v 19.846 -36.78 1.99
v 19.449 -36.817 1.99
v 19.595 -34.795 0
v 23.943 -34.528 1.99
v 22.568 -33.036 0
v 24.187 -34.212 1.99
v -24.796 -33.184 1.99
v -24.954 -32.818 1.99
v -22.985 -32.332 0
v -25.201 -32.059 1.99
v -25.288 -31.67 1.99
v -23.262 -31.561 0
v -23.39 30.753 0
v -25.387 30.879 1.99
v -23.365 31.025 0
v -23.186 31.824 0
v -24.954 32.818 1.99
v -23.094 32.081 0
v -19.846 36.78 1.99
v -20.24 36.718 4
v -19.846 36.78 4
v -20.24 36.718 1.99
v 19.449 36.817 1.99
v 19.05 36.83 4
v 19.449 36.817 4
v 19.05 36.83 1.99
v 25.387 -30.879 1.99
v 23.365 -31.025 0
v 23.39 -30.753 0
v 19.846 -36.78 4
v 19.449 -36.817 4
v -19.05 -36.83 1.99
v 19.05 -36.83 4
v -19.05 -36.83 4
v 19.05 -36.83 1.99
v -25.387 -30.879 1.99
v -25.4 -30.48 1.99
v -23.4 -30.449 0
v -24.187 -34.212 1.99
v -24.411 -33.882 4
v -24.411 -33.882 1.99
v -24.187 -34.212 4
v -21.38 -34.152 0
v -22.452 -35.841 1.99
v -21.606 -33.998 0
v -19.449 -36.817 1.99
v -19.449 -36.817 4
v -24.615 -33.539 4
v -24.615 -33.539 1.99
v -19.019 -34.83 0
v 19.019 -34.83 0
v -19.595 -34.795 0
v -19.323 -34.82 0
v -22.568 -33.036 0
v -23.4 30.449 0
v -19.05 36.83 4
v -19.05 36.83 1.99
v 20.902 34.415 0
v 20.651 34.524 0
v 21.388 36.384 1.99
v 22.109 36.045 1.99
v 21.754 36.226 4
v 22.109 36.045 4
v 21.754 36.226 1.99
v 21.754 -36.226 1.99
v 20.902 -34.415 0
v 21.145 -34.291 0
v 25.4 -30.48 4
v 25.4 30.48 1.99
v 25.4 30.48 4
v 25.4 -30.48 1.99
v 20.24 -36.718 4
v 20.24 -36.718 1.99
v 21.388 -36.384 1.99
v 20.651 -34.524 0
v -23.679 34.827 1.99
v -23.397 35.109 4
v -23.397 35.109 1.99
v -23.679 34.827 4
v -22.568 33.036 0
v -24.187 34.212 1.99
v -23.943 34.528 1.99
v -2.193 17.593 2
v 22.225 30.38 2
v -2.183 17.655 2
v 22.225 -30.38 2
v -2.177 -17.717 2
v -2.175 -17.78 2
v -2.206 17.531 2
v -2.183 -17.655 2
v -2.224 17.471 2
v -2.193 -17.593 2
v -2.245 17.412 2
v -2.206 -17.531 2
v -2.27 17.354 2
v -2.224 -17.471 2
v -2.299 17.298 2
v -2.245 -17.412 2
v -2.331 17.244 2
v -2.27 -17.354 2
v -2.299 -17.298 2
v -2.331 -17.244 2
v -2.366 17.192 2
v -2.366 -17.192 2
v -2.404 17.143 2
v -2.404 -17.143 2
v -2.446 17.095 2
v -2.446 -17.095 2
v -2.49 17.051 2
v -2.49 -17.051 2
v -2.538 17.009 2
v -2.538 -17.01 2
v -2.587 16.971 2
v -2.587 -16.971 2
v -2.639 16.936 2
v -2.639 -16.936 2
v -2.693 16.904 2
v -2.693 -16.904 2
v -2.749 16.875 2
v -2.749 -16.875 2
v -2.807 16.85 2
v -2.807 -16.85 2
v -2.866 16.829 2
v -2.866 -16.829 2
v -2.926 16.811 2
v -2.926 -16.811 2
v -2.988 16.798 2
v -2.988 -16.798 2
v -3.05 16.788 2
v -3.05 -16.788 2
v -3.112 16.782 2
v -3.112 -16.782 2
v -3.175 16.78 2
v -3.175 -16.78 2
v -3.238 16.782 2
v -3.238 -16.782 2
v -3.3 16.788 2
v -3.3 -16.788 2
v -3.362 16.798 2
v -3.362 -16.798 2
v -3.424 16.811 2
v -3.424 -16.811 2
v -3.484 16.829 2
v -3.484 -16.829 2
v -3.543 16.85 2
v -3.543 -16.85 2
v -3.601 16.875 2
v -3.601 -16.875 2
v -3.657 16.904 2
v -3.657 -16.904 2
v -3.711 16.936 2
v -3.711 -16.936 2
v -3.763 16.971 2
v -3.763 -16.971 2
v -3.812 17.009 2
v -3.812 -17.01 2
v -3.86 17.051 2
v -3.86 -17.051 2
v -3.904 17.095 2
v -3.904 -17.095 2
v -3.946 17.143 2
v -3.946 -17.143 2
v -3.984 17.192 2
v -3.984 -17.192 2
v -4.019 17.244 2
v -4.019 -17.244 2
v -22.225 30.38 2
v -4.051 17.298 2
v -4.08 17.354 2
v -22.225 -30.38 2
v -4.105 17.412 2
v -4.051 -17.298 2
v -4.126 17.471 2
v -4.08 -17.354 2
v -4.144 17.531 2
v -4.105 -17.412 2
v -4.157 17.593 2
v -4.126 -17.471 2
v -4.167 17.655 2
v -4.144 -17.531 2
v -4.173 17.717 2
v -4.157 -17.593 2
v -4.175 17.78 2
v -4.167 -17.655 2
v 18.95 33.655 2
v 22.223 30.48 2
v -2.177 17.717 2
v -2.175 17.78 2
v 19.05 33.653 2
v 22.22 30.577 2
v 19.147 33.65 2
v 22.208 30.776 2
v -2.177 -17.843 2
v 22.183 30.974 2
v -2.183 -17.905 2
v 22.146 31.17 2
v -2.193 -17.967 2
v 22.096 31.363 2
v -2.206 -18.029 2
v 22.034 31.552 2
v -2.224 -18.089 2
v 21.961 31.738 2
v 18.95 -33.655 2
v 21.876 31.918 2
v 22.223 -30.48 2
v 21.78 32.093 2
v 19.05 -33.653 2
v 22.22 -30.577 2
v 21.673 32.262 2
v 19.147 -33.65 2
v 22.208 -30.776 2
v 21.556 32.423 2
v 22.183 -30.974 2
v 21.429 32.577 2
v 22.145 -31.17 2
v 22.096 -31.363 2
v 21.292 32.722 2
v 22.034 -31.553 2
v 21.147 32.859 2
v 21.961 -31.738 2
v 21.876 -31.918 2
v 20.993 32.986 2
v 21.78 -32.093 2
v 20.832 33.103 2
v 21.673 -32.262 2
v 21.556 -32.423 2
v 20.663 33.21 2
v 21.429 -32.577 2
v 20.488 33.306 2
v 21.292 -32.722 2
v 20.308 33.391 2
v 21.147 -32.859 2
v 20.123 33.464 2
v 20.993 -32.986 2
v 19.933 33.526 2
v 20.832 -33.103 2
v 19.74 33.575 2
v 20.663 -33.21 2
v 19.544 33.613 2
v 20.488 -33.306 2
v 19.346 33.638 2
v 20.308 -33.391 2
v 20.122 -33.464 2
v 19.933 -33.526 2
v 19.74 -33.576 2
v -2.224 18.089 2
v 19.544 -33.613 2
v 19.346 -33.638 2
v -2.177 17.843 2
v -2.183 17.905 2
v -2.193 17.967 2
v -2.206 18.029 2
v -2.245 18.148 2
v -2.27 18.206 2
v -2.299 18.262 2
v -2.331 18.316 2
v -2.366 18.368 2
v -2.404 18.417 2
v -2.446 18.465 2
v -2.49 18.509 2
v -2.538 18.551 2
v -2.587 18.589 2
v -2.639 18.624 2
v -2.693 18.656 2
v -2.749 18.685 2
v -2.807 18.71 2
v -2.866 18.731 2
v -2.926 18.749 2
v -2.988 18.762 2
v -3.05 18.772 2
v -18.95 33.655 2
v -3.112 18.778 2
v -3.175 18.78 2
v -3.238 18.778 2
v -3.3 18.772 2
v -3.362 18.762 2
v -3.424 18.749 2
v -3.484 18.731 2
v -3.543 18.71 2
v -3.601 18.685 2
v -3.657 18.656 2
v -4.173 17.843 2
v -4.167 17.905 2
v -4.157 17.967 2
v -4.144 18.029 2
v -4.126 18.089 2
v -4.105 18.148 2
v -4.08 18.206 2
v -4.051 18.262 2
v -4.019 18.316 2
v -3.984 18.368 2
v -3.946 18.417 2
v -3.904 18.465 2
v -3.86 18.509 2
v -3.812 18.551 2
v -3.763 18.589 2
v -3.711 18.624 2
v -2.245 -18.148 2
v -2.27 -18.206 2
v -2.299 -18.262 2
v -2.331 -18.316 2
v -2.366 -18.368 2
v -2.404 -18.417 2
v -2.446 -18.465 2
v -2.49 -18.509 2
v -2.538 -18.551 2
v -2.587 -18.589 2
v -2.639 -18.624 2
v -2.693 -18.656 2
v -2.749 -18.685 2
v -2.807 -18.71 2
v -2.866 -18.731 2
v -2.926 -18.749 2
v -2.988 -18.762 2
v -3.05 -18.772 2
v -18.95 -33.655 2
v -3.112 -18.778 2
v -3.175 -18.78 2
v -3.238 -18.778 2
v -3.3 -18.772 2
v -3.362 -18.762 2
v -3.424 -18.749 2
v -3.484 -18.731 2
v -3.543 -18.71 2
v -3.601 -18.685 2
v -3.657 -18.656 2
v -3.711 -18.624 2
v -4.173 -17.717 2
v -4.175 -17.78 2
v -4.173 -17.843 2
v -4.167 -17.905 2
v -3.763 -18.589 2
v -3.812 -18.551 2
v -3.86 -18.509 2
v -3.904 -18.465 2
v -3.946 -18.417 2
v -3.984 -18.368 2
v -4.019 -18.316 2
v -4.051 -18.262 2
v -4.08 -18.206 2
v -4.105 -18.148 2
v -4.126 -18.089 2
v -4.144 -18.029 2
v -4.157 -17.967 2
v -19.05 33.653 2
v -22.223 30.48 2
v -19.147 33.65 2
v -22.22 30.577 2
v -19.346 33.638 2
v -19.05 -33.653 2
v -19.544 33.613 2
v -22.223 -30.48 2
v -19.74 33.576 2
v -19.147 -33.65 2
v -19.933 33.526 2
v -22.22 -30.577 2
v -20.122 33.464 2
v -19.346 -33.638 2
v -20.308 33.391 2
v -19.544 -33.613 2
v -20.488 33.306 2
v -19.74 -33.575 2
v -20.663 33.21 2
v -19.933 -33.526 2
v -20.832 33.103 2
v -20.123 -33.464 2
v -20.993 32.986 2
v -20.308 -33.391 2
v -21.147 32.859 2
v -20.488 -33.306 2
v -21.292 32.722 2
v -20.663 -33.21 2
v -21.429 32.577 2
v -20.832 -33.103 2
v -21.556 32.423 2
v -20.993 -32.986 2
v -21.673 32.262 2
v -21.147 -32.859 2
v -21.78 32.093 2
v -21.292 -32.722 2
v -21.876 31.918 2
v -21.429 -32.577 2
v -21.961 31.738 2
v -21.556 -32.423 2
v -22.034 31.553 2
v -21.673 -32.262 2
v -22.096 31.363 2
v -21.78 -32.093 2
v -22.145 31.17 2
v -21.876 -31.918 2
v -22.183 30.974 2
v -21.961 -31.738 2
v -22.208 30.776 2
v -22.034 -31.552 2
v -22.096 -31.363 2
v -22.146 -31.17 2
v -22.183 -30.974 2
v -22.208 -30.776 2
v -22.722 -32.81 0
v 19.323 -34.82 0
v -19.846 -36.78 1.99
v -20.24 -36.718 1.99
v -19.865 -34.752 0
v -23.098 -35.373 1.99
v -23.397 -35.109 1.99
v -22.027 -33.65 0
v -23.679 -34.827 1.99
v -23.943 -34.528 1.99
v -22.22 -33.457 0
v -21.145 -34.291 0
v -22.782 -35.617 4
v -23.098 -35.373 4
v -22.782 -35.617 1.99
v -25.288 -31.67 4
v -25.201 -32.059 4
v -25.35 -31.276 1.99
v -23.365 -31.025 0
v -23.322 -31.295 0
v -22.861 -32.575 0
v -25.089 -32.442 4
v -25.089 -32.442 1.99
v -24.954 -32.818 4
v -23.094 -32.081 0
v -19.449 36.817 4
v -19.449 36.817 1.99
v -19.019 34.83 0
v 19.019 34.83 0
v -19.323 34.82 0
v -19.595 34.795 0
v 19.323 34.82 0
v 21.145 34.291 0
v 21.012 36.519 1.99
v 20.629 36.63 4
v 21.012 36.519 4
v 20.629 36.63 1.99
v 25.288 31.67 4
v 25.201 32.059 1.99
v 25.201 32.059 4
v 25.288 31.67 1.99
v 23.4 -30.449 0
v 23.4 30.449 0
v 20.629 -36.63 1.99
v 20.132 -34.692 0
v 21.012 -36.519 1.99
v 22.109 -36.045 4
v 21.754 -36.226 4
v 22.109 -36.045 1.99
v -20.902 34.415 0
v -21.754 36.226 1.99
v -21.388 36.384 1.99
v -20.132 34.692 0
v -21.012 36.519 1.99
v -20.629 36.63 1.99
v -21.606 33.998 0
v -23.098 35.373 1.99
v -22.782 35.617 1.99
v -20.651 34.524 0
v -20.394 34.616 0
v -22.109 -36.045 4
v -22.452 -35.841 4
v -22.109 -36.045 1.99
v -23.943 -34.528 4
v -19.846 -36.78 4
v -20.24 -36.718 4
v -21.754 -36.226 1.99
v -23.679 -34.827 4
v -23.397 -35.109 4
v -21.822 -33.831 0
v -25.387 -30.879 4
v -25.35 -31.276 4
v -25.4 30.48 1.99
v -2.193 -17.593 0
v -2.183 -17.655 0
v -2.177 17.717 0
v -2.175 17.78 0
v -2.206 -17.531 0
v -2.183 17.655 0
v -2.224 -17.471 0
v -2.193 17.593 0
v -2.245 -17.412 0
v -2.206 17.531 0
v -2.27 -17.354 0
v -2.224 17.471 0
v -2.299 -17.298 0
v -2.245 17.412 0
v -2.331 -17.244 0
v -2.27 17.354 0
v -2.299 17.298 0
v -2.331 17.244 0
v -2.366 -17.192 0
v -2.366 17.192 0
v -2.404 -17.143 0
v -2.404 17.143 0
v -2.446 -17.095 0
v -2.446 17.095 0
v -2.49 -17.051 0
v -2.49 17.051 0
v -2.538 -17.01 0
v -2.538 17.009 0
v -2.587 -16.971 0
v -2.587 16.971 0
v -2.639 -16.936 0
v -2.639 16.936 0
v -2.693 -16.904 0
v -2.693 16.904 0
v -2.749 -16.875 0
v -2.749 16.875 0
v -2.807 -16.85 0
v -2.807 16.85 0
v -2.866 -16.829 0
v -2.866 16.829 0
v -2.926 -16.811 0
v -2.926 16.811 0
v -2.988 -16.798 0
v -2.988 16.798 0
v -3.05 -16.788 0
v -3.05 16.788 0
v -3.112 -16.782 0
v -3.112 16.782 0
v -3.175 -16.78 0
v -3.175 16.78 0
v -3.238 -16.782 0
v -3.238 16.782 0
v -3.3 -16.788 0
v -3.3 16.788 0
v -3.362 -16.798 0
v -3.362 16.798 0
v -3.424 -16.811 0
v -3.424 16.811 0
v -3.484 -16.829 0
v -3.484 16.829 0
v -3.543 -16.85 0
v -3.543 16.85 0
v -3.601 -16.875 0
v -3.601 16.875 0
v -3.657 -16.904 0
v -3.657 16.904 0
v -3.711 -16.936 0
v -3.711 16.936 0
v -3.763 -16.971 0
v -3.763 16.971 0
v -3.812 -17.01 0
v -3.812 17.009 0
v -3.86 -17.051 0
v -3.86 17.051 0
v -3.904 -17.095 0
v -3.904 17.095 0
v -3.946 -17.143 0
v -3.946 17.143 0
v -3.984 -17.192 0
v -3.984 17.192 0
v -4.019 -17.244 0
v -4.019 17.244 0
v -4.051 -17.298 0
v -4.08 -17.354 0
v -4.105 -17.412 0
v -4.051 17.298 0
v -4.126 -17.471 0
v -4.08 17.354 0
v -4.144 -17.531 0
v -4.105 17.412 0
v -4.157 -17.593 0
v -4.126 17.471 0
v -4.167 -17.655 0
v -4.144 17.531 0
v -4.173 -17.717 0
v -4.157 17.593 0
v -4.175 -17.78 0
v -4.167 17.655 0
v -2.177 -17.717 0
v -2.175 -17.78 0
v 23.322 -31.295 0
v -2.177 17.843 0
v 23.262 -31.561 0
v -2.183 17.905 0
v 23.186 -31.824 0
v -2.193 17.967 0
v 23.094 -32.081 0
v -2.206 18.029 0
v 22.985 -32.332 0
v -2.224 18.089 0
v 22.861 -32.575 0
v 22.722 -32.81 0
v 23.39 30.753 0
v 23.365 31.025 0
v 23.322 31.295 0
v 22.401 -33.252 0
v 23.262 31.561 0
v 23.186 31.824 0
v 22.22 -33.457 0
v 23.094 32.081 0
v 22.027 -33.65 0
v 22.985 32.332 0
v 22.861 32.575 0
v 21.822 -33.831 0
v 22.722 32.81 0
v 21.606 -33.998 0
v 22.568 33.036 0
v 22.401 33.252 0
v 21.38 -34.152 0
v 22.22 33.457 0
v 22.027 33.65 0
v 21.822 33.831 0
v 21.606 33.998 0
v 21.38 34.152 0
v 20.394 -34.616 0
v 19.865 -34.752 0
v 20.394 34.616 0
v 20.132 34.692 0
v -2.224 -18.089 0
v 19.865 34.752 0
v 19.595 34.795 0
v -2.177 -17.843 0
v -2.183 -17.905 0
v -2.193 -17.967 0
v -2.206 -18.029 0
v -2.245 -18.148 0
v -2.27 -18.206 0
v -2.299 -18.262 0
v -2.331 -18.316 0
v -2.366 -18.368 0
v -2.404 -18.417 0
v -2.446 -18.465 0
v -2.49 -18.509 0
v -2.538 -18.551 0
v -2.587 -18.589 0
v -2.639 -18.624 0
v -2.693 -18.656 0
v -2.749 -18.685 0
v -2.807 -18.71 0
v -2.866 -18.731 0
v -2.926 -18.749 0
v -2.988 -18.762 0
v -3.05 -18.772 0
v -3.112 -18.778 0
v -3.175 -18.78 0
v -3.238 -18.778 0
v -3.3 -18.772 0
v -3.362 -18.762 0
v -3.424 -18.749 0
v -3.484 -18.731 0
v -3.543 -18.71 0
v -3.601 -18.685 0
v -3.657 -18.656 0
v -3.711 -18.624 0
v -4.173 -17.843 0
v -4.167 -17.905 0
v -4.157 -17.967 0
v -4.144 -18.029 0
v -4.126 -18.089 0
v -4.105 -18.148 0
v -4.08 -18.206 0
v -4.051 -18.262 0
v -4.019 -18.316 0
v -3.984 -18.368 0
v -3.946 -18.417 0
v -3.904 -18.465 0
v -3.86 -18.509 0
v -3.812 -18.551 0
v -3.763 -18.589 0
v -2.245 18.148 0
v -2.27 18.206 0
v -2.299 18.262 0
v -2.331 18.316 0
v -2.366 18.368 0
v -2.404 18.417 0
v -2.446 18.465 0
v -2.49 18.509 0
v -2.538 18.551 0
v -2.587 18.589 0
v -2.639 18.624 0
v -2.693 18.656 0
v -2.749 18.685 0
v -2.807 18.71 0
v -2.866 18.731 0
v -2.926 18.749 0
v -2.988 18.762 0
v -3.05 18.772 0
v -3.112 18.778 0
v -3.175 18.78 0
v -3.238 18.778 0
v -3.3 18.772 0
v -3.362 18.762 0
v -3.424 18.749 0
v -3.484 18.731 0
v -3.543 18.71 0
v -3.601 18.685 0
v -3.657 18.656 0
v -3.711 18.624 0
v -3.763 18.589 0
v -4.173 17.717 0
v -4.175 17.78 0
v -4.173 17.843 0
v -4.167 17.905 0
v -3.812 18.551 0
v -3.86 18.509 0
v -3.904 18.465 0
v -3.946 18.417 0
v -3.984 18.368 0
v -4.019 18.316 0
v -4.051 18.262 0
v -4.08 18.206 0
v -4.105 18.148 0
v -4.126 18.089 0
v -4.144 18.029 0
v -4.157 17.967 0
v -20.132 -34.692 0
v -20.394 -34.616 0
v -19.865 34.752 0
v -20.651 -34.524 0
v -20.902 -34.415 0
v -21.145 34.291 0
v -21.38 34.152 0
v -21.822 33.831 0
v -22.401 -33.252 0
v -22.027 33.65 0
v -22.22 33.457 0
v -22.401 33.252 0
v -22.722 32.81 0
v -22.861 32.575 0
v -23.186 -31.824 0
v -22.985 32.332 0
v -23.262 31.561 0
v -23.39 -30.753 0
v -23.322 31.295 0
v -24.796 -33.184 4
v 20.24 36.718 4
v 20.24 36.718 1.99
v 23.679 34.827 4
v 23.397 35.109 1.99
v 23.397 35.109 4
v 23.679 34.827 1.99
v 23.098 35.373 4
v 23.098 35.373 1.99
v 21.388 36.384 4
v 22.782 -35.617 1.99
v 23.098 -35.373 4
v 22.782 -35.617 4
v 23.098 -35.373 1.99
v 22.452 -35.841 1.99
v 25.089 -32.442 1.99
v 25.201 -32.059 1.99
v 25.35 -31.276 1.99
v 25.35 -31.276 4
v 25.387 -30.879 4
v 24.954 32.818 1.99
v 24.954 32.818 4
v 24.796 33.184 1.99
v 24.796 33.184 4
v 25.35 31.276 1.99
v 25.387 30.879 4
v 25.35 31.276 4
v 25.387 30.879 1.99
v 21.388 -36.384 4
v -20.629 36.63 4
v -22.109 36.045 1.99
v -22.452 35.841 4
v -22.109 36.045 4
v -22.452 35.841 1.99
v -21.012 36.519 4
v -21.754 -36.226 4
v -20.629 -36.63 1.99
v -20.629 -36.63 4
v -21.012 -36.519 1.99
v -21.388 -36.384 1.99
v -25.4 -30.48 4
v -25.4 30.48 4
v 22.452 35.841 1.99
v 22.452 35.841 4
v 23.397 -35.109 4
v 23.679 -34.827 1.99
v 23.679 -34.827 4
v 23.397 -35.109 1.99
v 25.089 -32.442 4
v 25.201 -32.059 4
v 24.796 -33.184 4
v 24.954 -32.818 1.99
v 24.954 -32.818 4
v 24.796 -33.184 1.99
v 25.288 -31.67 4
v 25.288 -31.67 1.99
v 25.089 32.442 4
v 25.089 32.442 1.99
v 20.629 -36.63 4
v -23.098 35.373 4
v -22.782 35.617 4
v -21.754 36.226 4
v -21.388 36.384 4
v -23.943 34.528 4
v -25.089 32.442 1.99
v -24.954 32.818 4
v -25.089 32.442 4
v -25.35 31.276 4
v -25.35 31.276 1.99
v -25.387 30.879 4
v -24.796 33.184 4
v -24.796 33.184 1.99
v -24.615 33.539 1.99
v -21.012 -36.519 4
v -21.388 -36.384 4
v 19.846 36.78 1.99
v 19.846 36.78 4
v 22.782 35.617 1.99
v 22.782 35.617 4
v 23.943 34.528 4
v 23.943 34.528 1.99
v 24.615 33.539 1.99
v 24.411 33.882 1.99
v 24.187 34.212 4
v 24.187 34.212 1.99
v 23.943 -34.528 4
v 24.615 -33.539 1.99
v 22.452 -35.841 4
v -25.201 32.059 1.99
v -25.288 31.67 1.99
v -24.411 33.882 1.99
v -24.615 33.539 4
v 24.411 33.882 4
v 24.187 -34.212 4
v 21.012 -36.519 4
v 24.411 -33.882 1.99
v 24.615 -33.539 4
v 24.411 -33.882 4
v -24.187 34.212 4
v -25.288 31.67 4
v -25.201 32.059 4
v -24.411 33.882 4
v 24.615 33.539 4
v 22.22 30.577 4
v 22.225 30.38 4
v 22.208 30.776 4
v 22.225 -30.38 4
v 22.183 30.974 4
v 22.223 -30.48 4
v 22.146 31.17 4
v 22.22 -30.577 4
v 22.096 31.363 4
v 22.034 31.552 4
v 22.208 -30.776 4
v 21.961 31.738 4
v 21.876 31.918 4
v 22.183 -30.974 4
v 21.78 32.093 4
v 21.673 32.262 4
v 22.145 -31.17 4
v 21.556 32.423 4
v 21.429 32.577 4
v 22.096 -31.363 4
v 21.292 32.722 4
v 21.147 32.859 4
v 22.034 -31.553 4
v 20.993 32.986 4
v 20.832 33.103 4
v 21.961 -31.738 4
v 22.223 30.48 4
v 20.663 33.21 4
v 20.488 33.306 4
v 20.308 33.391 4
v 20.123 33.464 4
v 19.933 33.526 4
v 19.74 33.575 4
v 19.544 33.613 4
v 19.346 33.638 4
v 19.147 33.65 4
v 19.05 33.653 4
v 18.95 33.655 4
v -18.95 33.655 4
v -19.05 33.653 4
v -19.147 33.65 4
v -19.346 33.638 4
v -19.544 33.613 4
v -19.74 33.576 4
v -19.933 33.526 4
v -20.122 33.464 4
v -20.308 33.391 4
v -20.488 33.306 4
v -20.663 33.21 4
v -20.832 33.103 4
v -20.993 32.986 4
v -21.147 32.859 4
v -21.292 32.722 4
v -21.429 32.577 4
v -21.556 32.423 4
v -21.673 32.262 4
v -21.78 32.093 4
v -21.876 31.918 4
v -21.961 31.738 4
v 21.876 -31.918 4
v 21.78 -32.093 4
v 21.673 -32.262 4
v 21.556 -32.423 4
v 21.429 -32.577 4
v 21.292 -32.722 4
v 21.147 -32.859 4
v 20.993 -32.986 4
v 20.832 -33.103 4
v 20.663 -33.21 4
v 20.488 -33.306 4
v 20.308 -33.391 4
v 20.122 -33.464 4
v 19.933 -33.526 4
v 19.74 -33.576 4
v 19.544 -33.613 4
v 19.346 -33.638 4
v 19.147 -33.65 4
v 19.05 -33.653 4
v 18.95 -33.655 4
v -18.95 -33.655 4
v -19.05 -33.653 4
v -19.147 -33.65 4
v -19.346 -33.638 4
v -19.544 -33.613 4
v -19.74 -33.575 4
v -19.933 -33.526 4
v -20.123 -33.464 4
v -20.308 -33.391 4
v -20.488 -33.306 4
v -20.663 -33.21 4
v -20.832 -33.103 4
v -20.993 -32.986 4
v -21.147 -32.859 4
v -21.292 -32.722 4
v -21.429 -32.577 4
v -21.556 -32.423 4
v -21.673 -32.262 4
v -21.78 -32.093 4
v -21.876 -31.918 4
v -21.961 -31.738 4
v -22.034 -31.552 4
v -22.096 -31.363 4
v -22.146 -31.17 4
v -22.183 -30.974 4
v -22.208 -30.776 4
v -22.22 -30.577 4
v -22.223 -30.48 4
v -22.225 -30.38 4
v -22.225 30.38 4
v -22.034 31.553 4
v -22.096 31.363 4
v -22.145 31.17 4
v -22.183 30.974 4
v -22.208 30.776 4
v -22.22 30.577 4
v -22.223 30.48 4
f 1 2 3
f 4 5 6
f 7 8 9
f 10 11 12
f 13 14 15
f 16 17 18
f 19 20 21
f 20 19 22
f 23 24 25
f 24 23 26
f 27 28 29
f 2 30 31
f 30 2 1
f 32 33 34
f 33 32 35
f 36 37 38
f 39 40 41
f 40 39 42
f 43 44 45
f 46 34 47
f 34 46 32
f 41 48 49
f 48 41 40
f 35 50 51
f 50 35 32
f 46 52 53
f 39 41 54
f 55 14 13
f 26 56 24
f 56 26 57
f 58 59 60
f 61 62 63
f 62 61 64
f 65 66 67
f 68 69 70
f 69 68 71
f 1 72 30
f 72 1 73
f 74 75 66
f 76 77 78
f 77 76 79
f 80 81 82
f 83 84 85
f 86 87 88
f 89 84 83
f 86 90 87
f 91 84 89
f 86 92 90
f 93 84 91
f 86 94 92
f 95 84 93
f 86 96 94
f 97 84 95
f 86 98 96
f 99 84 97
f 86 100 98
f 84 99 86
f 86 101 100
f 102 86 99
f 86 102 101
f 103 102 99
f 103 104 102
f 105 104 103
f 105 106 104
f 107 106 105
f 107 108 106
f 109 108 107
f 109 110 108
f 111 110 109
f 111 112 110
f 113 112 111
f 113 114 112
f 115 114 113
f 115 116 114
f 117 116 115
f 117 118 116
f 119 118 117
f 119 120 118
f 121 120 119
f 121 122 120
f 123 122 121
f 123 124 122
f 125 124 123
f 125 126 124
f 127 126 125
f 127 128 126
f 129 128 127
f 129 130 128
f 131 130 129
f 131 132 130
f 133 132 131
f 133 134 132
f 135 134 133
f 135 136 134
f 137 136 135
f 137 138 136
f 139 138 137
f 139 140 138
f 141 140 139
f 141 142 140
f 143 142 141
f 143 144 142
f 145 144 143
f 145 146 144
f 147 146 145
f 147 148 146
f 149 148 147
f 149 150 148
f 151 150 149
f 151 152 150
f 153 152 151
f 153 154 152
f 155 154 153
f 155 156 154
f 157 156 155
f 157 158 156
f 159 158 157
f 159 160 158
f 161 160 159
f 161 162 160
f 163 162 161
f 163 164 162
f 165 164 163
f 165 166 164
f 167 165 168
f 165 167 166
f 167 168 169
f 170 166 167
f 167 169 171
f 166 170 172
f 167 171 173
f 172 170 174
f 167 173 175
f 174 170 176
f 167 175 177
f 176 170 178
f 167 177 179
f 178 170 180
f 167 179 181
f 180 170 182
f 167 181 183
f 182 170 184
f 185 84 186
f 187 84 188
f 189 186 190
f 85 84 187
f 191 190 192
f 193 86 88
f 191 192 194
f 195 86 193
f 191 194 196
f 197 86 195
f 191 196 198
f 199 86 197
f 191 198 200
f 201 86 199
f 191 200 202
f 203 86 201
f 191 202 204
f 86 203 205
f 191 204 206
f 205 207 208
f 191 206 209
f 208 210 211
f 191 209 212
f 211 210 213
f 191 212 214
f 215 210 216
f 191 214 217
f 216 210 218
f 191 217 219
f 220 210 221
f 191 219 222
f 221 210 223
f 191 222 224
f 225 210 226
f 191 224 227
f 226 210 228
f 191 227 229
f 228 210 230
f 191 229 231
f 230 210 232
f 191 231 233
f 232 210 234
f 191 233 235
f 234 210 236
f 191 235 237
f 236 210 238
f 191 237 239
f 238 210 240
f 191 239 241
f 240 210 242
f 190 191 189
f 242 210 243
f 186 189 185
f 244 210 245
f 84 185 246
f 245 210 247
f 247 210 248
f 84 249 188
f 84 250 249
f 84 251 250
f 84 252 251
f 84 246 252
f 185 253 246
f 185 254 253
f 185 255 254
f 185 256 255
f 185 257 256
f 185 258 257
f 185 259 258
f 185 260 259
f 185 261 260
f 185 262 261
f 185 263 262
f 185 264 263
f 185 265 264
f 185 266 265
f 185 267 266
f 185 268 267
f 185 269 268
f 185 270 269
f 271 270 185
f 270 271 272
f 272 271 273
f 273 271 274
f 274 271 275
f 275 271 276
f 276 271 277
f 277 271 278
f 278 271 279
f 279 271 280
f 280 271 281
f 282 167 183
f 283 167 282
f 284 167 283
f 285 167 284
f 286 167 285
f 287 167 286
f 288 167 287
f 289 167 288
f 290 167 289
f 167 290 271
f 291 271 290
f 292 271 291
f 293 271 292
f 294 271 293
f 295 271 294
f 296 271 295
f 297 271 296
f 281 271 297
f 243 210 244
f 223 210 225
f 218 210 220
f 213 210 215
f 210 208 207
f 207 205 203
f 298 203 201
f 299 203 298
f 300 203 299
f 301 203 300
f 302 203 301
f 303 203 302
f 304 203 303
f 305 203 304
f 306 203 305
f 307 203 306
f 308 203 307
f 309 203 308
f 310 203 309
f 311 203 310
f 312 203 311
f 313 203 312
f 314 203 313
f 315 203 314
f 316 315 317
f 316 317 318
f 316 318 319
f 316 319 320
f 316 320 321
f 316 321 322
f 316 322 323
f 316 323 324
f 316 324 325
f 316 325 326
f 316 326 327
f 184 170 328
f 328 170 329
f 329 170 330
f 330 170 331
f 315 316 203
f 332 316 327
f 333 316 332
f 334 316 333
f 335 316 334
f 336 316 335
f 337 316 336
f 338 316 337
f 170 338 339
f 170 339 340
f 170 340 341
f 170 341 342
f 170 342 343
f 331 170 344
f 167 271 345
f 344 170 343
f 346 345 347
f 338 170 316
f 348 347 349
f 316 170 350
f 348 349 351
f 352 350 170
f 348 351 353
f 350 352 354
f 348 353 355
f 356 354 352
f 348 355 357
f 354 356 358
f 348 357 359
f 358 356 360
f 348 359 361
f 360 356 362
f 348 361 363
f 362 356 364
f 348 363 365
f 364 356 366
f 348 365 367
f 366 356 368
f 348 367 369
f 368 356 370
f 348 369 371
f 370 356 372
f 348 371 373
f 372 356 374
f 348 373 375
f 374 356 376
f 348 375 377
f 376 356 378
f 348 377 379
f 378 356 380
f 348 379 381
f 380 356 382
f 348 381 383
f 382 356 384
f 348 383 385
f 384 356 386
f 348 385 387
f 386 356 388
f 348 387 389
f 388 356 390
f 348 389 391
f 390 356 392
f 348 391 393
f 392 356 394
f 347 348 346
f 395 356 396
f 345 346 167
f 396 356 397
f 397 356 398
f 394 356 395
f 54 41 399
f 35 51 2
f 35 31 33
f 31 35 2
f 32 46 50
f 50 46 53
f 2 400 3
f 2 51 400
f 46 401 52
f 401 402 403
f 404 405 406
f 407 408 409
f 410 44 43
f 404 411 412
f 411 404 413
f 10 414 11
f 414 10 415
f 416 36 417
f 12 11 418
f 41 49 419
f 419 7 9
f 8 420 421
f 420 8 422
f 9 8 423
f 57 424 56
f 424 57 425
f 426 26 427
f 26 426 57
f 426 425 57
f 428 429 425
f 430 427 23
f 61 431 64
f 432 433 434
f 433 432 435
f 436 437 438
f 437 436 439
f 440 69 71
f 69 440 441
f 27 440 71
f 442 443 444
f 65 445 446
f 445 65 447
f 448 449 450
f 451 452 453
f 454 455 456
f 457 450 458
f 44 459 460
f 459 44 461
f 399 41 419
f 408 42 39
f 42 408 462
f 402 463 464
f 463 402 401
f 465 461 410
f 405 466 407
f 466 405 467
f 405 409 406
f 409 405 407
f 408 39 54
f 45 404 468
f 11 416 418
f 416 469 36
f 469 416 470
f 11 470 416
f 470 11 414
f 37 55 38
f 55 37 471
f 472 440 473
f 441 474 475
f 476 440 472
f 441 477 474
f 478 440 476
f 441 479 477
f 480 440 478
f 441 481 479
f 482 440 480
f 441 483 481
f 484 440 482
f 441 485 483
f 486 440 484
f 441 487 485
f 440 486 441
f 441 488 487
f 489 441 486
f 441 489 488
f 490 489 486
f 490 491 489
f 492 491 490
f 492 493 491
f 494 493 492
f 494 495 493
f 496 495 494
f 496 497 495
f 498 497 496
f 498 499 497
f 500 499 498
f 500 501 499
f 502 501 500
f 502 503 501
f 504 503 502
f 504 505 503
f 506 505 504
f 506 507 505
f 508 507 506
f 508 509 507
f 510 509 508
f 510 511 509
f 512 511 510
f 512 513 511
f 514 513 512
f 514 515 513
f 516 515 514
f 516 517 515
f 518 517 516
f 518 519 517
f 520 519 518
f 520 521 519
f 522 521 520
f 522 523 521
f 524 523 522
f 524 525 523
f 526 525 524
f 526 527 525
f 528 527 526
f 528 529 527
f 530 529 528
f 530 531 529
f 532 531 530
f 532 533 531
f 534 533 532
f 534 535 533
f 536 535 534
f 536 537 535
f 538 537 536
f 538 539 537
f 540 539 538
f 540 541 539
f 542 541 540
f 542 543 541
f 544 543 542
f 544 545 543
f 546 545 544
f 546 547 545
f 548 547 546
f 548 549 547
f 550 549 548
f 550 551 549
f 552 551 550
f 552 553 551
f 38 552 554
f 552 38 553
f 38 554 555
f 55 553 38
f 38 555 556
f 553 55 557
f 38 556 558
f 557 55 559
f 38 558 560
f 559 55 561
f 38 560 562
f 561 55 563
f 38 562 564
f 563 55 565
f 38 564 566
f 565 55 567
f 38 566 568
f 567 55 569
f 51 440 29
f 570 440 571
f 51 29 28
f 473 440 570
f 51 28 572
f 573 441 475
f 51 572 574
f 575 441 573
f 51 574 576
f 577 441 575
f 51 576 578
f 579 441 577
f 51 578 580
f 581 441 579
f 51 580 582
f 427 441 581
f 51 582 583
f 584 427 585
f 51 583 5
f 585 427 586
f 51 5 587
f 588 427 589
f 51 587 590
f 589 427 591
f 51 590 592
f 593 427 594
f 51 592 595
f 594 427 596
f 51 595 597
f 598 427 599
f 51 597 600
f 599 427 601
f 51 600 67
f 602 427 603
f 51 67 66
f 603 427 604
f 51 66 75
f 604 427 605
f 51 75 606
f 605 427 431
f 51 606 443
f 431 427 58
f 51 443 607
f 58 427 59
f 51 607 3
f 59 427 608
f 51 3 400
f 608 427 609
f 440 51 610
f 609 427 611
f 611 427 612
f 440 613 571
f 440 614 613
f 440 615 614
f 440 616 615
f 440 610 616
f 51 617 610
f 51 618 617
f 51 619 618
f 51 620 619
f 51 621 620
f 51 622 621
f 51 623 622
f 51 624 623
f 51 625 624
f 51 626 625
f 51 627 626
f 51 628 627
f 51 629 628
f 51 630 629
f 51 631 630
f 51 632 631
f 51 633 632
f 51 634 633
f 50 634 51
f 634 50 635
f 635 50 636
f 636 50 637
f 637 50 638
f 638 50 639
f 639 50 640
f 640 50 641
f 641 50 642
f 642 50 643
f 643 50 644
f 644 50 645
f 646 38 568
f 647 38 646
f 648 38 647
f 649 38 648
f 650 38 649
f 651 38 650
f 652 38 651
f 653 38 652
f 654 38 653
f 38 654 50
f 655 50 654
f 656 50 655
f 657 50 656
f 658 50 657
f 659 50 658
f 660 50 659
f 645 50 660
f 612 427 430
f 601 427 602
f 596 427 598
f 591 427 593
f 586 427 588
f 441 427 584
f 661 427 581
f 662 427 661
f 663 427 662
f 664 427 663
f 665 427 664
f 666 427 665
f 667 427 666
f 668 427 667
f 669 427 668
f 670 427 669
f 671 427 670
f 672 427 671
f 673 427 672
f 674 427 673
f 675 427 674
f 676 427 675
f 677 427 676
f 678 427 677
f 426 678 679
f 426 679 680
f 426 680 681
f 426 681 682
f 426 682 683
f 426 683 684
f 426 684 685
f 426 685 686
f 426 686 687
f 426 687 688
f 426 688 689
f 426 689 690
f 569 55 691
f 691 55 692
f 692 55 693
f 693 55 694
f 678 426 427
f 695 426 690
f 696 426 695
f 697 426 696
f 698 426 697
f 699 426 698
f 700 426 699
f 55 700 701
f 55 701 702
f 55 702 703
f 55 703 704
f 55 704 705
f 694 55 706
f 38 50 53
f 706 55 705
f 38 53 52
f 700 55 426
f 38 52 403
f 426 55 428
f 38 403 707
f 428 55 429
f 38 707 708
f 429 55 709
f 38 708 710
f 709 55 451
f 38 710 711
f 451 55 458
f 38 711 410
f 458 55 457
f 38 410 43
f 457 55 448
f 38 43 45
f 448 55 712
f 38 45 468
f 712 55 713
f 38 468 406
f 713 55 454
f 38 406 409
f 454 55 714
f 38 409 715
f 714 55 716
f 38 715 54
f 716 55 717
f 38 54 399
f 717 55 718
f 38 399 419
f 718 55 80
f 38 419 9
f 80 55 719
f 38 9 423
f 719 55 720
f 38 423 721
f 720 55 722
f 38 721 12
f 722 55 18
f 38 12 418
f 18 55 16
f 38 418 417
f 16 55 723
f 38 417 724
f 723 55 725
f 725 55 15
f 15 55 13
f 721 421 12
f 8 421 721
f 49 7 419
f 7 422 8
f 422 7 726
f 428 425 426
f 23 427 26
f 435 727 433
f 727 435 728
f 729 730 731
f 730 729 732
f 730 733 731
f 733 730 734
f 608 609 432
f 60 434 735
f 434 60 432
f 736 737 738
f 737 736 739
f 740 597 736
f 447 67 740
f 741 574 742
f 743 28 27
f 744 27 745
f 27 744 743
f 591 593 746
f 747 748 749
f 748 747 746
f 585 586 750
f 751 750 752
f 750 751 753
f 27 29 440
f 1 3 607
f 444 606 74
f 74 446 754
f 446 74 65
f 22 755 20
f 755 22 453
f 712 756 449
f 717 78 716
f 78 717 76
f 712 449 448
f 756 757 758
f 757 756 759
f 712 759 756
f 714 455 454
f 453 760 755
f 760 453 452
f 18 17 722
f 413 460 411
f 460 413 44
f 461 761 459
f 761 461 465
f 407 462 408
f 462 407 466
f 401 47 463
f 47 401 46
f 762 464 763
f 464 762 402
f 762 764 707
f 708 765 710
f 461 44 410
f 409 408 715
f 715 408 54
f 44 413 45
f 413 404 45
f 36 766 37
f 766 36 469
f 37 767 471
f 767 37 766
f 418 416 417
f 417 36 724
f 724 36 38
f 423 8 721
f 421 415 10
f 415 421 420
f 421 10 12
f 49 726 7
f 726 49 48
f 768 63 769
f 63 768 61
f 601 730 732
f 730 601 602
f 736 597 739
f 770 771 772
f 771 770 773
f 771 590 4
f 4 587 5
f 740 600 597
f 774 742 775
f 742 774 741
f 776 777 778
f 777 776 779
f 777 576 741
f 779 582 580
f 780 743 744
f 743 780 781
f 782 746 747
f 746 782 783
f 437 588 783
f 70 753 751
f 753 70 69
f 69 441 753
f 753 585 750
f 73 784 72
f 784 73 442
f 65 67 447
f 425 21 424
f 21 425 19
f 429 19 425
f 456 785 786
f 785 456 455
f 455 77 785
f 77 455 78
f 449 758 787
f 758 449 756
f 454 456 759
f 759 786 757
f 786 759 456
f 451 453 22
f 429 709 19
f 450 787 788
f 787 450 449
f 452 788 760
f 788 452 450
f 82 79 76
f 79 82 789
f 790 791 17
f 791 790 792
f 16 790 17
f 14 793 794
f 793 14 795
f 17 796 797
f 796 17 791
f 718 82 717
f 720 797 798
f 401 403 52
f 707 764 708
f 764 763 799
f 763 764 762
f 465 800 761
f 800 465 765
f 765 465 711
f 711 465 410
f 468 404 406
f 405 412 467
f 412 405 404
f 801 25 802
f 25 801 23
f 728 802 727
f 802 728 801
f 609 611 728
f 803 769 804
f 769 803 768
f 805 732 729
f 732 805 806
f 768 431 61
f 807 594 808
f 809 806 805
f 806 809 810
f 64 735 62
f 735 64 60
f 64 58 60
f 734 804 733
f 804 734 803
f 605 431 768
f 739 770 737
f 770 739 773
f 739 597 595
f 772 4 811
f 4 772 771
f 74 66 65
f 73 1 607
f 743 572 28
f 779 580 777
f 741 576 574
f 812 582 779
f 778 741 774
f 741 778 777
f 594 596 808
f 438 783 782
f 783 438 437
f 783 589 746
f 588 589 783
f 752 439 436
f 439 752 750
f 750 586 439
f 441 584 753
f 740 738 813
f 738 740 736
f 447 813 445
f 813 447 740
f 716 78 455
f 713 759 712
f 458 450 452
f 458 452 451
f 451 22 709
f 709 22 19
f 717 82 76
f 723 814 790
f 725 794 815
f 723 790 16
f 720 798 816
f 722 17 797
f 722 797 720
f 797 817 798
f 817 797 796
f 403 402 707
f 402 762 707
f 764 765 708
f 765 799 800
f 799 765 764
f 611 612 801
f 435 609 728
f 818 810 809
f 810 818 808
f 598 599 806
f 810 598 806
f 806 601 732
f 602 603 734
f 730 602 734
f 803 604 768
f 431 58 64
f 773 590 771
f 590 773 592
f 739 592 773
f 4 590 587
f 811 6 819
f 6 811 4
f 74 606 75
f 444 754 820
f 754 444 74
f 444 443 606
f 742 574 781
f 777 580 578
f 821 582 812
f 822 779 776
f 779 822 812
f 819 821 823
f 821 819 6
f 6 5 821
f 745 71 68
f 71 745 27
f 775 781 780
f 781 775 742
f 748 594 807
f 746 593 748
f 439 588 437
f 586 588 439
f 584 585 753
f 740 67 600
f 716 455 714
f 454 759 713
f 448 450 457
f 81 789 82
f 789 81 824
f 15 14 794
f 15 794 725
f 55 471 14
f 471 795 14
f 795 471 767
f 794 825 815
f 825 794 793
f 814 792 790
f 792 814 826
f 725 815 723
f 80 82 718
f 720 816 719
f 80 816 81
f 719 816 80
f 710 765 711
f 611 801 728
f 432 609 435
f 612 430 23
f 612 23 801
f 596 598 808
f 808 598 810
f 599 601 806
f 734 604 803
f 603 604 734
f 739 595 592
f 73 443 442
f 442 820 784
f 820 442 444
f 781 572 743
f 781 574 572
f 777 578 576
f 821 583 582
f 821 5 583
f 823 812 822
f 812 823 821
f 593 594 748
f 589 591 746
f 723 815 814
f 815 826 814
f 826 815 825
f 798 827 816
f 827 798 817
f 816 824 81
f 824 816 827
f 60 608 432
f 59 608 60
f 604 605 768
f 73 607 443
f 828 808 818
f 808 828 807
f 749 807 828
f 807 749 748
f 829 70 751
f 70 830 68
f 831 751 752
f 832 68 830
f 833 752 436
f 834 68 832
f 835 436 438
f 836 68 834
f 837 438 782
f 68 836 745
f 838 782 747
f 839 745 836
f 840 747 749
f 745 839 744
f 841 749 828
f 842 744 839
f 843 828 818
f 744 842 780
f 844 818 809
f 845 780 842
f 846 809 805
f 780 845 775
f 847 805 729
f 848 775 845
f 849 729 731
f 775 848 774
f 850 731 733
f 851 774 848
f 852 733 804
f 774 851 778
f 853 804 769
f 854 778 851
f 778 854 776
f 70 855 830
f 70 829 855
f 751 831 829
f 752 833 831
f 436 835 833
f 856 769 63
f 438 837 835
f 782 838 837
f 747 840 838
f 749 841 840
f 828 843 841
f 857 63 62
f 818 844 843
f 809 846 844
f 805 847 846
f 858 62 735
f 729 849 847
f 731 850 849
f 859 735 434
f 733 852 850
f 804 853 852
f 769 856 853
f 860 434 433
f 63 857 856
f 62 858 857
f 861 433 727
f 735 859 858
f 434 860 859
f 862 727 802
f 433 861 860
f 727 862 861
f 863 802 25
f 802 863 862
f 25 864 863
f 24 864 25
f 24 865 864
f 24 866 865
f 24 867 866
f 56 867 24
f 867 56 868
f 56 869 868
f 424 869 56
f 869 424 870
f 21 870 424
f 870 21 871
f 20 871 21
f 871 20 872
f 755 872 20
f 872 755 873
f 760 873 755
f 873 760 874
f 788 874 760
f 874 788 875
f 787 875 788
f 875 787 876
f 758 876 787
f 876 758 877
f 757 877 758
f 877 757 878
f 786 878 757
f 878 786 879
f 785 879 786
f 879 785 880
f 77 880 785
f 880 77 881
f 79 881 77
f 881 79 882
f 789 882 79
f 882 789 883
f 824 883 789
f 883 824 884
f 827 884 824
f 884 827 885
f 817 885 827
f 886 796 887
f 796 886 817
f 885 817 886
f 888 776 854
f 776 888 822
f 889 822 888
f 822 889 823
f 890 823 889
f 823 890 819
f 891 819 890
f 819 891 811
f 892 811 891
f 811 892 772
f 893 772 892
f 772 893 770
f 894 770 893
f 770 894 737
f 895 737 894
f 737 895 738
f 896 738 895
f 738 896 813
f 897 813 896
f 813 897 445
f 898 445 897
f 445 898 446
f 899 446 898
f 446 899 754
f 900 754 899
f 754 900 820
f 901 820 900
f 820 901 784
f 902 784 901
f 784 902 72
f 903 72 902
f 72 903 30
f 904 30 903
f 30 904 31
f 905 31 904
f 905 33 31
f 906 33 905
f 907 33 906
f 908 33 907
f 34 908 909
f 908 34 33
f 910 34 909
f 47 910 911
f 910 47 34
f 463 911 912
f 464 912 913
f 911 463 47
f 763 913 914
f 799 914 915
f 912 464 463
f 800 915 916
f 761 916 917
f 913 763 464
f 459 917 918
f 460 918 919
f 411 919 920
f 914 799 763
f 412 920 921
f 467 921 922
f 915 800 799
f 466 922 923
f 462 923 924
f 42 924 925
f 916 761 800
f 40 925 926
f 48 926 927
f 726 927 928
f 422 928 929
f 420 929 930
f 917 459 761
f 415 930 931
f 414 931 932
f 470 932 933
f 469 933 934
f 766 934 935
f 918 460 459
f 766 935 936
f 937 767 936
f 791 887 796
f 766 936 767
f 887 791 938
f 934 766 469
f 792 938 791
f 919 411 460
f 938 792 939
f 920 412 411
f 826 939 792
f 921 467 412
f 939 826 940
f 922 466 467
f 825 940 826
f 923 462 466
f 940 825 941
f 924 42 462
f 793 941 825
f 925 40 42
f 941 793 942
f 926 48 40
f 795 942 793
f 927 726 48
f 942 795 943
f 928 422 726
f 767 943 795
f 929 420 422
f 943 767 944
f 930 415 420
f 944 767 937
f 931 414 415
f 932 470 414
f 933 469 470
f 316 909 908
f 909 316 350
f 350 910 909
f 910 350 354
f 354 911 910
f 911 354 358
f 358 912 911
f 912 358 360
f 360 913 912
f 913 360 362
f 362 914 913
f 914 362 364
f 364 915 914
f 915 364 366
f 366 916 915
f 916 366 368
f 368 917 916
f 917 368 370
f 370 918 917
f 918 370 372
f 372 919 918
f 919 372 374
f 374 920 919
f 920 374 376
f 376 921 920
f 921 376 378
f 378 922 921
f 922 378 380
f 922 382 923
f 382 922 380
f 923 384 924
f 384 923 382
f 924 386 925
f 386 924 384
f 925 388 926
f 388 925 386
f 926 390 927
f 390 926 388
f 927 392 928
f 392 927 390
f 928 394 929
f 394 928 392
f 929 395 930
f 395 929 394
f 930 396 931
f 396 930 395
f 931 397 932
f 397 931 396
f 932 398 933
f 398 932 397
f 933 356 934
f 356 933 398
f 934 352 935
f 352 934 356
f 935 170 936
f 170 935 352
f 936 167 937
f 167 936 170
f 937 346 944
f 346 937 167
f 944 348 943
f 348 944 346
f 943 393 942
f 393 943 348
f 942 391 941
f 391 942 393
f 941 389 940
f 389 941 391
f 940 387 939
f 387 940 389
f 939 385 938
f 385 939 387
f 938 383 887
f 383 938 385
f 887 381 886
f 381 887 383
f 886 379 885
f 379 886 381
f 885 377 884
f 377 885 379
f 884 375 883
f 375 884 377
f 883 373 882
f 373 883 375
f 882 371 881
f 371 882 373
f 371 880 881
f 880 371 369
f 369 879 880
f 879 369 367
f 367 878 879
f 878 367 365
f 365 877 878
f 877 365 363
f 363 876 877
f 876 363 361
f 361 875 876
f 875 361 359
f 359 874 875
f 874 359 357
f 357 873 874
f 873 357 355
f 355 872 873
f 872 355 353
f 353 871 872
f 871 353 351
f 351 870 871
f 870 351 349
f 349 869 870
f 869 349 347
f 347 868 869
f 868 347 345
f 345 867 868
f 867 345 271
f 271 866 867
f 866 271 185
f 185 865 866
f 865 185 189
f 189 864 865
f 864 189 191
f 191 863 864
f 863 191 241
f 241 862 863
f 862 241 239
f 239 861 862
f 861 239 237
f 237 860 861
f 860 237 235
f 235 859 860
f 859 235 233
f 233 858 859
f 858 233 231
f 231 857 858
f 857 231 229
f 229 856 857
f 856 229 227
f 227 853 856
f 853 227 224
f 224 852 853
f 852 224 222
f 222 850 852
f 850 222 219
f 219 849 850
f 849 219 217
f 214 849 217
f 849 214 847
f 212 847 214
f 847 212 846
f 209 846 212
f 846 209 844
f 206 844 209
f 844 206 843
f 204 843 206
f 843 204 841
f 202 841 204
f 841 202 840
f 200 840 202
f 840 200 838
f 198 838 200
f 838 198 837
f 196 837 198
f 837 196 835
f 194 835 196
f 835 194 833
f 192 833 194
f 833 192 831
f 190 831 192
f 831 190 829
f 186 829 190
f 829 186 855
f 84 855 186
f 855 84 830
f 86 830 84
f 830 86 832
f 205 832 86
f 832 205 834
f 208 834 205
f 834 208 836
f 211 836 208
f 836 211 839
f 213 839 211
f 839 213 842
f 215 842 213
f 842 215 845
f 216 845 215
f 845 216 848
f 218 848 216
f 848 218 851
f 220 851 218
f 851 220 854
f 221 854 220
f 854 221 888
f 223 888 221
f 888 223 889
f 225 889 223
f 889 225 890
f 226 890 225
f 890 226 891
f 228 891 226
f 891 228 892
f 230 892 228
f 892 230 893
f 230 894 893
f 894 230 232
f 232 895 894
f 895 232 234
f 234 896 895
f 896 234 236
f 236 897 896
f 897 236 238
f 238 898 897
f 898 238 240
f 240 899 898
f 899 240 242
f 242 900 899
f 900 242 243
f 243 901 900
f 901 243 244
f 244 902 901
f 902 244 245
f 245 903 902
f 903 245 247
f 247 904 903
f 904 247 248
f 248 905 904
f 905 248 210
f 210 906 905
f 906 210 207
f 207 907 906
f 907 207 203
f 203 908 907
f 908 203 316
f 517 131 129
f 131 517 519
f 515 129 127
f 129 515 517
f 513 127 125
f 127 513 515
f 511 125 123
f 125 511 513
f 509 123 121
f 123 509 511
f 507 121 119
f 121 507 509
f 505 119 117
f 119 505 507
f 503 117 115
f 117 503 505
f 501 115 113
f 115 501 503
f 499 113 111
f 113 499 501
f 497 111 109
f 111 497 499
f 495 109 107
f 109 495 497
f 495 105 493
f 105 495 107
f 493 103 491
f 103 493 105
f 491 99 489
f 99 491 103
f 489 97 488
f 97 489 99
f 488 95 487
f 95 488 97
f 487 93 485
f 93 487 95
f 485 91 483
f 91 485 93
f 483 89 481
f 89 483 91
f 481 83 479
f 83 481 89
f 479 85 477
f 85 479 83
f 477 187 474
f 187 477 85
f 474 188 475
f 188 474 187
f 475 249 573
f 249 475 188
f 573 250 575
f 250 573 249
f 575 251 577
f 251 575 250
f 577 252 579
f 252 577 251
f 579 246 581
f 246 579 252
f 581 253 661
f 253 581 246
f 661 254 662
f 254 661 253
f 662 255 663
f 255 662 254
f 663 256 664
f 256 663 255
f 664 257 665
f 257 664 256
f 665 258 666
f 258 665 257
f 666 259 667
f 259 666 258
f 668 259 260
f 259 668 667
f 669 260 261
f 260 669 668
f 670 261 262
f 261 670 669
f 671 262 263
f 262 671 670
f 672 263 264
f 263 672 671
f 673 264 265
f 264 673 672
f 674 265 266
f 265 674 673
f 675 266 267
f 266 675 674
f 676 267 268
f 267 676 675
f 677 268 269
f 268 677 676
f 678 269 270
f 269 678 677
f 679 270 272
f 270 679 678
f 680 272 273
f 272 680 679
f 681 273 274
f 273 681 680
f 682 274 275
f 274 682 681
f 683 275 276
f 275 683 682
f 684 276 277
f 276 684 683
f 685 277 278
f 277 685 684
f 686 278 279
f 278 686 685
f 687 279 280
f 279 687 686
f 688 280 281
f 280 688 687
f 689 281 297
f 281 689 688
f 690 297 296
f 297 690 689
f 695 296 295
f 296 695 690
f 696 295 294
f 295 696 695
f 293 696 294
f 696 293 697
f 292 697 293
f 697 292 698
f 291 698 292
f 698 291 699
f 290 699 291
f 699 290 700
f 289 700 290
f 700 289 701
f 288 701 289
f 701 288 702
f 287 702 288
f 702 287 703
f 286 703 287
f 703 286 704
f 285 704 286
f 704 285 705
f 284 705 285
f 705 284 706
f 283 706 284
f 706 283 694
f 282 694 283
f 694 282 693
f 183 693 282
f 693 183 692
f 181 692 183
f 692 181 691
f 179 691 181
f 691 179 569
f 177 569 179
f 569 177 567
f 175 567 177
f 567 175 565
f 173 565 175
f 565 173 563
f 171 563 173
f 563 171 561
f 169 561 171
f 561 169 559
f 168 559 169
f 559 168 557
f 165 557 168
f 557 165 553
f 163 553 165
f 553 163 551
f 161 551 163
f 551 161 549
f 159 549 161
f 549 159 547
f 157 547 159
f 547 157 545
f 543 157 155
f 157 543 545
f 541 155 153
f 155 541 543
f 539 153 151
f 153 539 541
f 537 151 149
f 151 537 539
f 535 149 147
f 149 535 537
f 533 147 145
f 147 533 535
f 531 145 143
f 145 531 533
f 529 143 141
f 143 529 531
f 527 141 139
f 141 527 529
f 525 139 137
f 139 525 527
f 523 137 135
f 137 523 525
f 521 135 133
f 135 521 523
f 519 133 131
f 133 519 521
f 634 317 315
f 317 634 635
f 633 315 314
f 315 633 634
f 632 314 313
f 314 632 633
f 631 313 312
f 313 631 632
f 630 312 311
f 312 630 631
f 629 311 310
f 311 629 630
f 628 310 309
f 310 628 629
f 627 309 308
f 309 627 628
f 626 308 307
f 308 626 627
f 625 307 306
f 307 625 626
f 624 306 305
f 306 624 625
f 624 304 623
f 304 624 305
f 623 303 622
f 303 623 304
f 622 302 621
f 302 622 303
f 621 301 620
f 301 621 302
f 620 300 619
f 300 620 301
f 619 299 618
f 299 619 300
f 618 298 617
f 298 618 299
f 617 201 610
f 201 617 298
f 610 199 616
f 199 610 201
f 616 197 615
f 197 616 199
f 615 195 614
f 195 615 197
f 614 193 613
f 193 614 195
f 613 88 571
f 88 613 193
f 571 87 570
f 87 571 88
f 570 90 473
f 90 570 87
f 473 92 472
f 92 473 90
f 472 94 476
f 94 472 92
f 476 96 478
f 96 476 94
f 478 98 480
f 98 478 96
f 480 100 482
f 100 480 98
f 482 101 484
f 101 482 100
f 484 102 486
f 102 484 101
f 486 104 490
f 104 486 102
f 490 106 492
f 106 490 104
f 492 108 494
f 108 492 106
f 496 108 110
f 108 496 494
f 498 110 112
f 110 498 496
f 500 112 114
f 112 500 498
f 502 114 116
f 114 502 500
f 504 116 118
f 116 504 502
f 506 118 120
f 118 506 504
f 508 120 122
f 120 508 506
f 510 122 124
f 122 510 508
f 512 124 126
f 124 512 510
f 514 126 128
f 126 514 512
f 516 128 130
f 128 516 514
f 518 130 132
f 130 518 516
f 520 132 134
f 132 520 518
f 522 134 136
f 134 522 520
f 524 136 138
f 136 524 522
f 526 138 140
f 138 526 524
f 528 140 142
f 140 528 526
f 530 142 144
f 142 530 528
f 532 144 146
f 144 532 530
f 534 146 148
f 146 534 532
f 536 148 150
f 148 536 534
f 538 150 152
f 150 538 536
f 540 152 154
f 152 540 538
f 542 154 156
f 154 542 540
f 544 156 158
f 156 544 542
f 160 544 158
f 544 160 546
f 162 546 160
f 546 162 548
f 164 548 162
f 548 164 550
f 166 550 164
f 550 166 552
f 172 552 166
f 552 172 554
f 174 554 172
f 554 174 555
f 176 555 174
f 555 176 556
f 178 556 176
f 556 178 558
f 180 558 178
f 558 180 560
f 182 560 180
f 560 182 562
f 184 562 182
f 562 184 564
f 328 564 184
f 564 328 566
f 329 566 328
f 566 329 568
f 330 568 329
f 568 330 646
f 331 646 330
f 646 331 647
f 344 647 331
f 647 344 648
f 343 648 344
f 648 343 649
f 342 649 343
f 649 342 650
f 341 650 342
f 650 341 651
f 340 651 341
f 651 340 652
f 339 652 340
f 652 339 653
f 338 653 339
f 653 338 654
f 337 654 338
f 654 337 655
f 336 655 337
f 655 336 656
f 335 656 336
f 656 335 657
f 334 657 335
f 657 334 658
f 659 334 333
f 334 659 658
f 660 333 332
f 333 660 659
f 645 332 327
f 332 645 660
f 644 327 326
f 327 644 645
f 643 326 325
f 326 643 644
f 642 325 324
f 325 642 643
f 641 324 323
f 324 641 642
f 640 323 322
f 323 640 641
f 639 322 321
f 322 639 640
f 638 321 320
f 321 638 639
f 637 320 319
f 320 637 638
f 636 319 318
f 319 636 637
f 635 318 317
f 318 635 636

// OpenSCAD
w = 1 * 25.4;
h = 1.9 * 25.4;
r = 1;
x = 0.375 * 25.4;
y1 = 0.25 * 25.4;
y2 = h - y1;

out = 0.5 * 25.4;
rad = 0.25 * 25.4;
t = 2;

module parta(){
  $fn = 100;
  offset(r=rad)
  offset(delta=out-rad)
  square([w,h],center=true);
}

module partb(){
  $fn = 100;
  translate([-w/2,-h/2,0]){
    translate([x,y1,0])
    circle(r);
    translate([x,y2,0])
    circle(r);
  }
}

module partc(){
  $fn = 100;
  difference(){
    parta();
    offset(r=rad/2) offset(r=-rad) parta();
  }
  //offset(r=rad) partb();
}

module partd(){
  difference(){
    union(){
      parte();
      
      translate([0,0,t])
      linear_extrude(t)
      partc();
    }
    
    translate([0,0,-t/2])
    linear_extrude(t*2)
    partb();
  }
}

partd();

module parte(){
  hull(){
  translate([0,0,t-0.01])
    linear_extrude(0.01)
    parta();
    
    linear_extrude(0.01)
    offset(r=-t)
    parta();
  }
}
